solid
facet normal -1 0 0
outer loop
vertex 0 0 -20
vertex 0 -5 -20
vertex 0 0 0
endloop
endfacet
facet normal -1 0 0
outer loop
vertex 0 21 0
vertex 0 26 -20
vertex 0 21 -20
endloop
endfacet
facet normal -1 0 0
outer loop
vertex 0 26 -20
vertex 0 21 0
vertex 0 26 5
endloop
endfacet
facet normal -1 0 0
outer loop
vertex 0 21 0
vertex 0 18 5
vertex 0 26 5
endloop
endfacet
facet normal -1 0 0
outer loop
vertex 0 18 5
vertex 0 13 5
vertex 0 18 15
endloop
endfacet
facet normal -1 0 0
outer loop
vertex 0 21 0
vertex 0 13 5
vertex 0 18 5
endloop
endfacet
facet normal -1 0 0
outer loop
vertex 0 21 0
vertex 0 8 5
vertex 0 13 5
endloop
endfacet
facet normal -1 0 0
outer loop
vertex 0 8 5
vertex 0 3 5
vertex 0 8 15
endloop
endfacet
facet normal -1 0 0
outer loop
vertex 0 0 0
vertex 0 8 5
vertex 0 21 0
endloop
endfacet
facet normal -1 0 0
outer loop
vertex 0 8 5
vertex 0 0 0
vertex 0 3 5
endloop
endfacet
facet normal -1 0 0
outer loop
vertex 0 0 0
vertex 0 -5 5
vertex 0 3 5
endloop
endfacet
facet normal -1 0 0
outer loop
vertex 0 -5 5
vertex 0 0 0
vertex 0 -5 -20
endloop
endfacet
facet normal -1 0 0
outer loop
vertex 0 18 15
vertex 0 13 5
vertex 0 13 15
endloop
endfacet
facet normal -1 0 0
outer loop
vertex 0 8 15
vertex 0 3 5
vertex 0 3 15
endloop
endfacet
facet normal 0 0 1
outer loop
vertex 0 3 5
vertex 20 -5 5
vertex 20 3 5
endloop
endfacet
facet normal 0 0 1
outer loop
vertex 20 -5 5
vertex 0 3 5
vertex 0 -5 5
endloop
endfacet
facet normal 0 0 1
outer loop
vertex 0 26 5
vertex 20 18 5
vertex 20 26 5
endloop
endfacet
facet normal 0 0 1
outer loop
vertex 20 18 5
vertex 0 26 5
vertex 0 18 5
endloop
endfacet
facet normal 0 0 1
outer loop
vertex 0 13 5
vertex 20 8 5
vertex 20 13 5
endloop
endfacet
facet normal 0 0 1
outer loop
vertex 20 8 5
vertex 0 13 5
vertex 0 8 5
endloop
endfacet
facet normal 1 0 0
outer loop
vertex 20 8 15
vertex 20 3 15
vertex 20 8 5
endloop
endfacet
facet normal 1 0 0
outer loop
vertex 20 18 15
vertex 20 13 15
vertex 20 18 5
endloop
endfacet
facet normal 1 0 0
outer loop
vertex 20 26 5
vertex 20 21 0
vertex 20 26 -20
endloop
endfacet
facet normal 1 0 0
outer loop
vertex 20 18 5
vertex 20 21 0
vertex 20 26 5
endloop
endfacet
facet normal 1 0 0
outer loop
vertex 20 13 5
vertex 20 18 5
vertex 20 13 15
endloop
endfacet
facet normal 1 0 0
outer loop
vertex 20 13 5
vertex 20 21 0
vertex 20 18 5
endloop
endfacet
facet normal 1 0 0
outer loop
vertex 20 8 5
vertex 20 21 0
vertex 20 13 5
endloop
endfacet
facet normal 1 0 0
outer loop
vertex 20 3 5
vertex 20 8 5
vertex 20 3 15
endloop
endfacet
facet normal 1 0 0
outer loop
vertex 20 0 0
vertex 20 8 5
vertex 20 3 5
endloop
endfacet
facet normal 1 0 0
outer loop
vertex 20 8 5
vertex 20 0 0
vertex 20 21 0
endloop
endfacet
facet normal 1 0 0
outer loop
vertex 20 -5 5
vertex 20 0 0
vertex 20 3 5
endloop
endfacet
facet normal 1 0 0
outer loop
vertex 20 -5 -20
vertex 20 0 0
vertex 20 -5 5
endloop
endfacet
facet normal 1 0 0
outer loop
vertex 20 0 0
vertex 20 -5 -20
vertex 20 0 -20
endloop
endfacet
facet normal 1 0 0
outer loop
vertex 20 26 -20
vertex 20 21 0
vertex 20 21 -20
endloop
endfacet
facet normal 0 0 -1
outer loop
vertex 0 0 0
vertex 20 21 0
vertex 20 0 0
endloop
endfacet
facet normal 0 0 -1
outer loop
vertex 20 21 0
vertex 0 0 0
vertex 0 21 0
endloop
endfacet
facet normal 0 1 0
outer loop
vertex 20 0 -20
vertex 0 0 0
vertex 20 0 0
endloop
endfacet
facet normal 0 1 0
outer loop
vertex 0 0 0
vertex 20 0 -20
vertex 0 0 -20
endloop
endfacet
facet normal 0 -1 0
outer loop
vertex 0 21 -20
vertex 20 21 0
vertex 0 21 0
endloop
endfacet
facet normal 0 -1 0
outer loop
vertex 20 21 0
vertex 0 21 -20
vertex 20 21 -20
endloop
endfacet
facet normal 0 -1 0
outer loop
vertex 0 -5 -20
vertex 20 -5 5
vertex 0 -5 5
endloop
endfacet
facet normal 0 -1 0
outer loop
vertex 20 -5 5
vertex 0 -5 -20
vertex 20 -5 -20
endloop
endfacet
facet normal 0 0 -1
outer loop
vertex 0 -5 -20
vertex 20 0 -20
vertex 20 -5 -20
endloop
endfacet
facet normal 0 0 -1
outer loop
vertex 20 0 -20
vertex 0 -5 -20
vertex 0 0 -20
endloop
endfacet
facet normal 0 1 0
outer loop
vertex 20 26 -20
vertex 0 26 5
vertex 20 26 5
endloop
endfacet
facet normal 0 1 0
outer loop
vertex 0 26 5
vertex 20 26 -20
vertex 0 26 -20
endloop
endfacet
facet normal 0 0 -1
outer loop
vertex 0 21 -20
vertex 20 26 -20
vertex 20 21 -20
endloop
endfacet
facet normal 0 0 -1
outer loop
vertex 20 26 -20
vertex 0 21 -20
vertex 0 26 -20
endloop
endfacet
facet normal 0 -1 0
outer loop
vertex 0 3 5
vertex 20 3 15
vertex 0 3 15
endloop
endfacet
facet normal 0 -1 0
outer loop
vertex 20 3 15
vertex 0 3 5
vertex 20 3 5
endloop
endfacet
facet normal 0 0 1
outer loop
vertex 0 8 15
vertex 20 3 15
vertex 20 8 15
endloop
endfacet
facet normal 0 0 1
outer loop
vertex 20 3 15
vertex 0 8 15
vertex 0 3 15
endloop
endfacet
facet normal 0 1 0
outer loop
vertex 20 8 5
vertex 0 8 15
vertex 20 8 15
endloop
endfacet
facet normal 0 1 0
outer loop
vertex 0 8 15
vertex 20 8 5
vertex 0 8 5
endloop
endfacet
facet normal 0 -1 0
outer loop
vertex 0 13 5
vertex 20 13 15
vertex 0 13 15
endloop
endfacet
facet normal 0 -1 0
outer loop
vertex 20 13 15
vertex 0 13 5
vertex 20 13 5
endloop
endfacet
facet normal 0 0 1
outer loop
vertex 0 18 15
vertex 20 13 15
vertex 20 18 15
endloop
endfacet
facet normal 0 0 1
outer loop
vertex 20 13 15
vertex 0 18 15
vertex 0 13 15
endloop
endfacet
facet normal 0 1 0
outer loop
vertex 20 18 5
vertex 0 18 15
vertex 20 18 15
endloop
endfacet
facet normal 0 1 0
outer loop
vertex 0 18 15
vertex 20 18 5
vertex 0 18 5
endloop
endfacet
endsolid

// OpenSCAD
// file: hex_grid/hex_grid.scad
*hex_grid();

module hex_grid(size = [ 50, 30 ], wall = 1.5, hole_radius = 1.5) {
  hole_outer_radius = hole_radius;
  hole_inner_radius = hole_outer_radius * sqrt(3) / 2;

  hex_inner_radius = hole_inner_radius + wall / 2;
  hex_outer_radius = 2 * hex_inner_radius / sqrt(3);


  distance_between_hexes_centers = 2 * hex_inner_radius;
  x_distance = distance_between_hexes_centers * cos(30);
  y_distance = distance_between_hexes_centers * sin(30);

  x_hexes_count = ceil(size.x / (2 * x_distance));
  y_hexex_count = ceil(size.y / (4 * y_distance));

  module hex() {
    difference() {
      circle(hex_outer_radius, $fn = 6);
      circle(hole_outer_radius, $fn = 6);
    }
  }

  module column() {
    for (i = [0:y_hexex_count]) {
      translate([ 0, distance_between_hexes_centers * i ]) hex();
    }
  }

  module grid_quarter() {
    for (x = [0:x_hexes_count]) {
      translate([ x_distance * x, x % 2 == 0 ? 0 : -y_distance ]) column();
    }
  }

  module grid() {
    grid_quarter();
    mirror([ 0, 1, 0 ]) { grid_quarter(); }

    mirror([ 1, 0, 0 ]) {
      grid_quarter();
      mirror([ 0, 1, 0 ]) { grid_quarter(); }
    }
  }

  intersection() {
    grid();
    square(size, center = true);
  }
}
// main file
use <hex_grid/hex_grid.scad>;

$fn=400;
plate_thickness=5;
gate_base_plate_height=plate_thickness;
gate_base_plate_size_x=21;
gate_base_plate_size_y=20;
gate_base_plate=[gate_base_plate_size_y,gate_base_plate_size_x,gate_base_plate_height];

gate_side_plate_height=plate_thickness;
gate_side_plate_size_x=20+plate_thickness;
gate_side_plate_size_y=20;
gate_side_plate=[gate_side_plate_size_y,gate_side_plate_size_x,gate_side_plate_height];

gate_holder_plate_height=plate_thickness;
gate_holder_plate_size_x=gate_base_plate_size_y;
gate_holder_plate_size_y=10;
gate_holder_plate=[gate_holder_plate_size_y,gate_holder_plate_size_x,gate_holder_plate_height];
gate_holder_space=5;

union() {
    
    cube(gate_base_plate);
    
    rotate([90,0,0])
    translate([0, -gate_side_plate_size_y, 0])
    color("red")
    cube(gate_side_plate);

    rotate([90,0,0])
    translate([0, -gate_side_plate_size_y, - (gate_base_plate_size_x + plate_thickness)])
    color("green")
    cube(gate_side_plate);
    
    color("black")
    rotate([90,90,0])
    translate([- (gate_holder_plate_size_y + plate_thickness), 0, -(gate_base_plate_size_x/2 - plate_thickness/2)])
    cube(gate_holder_plate);
    
    color("grey")
    rotate([90,90,0])
    translate([-gate_holder_plate_size_x+5, 0, -(gate_base_plate_size_x/2 + plate_thickness + plate_thickness/2)])
    cube(gate_holder_plate);
}
